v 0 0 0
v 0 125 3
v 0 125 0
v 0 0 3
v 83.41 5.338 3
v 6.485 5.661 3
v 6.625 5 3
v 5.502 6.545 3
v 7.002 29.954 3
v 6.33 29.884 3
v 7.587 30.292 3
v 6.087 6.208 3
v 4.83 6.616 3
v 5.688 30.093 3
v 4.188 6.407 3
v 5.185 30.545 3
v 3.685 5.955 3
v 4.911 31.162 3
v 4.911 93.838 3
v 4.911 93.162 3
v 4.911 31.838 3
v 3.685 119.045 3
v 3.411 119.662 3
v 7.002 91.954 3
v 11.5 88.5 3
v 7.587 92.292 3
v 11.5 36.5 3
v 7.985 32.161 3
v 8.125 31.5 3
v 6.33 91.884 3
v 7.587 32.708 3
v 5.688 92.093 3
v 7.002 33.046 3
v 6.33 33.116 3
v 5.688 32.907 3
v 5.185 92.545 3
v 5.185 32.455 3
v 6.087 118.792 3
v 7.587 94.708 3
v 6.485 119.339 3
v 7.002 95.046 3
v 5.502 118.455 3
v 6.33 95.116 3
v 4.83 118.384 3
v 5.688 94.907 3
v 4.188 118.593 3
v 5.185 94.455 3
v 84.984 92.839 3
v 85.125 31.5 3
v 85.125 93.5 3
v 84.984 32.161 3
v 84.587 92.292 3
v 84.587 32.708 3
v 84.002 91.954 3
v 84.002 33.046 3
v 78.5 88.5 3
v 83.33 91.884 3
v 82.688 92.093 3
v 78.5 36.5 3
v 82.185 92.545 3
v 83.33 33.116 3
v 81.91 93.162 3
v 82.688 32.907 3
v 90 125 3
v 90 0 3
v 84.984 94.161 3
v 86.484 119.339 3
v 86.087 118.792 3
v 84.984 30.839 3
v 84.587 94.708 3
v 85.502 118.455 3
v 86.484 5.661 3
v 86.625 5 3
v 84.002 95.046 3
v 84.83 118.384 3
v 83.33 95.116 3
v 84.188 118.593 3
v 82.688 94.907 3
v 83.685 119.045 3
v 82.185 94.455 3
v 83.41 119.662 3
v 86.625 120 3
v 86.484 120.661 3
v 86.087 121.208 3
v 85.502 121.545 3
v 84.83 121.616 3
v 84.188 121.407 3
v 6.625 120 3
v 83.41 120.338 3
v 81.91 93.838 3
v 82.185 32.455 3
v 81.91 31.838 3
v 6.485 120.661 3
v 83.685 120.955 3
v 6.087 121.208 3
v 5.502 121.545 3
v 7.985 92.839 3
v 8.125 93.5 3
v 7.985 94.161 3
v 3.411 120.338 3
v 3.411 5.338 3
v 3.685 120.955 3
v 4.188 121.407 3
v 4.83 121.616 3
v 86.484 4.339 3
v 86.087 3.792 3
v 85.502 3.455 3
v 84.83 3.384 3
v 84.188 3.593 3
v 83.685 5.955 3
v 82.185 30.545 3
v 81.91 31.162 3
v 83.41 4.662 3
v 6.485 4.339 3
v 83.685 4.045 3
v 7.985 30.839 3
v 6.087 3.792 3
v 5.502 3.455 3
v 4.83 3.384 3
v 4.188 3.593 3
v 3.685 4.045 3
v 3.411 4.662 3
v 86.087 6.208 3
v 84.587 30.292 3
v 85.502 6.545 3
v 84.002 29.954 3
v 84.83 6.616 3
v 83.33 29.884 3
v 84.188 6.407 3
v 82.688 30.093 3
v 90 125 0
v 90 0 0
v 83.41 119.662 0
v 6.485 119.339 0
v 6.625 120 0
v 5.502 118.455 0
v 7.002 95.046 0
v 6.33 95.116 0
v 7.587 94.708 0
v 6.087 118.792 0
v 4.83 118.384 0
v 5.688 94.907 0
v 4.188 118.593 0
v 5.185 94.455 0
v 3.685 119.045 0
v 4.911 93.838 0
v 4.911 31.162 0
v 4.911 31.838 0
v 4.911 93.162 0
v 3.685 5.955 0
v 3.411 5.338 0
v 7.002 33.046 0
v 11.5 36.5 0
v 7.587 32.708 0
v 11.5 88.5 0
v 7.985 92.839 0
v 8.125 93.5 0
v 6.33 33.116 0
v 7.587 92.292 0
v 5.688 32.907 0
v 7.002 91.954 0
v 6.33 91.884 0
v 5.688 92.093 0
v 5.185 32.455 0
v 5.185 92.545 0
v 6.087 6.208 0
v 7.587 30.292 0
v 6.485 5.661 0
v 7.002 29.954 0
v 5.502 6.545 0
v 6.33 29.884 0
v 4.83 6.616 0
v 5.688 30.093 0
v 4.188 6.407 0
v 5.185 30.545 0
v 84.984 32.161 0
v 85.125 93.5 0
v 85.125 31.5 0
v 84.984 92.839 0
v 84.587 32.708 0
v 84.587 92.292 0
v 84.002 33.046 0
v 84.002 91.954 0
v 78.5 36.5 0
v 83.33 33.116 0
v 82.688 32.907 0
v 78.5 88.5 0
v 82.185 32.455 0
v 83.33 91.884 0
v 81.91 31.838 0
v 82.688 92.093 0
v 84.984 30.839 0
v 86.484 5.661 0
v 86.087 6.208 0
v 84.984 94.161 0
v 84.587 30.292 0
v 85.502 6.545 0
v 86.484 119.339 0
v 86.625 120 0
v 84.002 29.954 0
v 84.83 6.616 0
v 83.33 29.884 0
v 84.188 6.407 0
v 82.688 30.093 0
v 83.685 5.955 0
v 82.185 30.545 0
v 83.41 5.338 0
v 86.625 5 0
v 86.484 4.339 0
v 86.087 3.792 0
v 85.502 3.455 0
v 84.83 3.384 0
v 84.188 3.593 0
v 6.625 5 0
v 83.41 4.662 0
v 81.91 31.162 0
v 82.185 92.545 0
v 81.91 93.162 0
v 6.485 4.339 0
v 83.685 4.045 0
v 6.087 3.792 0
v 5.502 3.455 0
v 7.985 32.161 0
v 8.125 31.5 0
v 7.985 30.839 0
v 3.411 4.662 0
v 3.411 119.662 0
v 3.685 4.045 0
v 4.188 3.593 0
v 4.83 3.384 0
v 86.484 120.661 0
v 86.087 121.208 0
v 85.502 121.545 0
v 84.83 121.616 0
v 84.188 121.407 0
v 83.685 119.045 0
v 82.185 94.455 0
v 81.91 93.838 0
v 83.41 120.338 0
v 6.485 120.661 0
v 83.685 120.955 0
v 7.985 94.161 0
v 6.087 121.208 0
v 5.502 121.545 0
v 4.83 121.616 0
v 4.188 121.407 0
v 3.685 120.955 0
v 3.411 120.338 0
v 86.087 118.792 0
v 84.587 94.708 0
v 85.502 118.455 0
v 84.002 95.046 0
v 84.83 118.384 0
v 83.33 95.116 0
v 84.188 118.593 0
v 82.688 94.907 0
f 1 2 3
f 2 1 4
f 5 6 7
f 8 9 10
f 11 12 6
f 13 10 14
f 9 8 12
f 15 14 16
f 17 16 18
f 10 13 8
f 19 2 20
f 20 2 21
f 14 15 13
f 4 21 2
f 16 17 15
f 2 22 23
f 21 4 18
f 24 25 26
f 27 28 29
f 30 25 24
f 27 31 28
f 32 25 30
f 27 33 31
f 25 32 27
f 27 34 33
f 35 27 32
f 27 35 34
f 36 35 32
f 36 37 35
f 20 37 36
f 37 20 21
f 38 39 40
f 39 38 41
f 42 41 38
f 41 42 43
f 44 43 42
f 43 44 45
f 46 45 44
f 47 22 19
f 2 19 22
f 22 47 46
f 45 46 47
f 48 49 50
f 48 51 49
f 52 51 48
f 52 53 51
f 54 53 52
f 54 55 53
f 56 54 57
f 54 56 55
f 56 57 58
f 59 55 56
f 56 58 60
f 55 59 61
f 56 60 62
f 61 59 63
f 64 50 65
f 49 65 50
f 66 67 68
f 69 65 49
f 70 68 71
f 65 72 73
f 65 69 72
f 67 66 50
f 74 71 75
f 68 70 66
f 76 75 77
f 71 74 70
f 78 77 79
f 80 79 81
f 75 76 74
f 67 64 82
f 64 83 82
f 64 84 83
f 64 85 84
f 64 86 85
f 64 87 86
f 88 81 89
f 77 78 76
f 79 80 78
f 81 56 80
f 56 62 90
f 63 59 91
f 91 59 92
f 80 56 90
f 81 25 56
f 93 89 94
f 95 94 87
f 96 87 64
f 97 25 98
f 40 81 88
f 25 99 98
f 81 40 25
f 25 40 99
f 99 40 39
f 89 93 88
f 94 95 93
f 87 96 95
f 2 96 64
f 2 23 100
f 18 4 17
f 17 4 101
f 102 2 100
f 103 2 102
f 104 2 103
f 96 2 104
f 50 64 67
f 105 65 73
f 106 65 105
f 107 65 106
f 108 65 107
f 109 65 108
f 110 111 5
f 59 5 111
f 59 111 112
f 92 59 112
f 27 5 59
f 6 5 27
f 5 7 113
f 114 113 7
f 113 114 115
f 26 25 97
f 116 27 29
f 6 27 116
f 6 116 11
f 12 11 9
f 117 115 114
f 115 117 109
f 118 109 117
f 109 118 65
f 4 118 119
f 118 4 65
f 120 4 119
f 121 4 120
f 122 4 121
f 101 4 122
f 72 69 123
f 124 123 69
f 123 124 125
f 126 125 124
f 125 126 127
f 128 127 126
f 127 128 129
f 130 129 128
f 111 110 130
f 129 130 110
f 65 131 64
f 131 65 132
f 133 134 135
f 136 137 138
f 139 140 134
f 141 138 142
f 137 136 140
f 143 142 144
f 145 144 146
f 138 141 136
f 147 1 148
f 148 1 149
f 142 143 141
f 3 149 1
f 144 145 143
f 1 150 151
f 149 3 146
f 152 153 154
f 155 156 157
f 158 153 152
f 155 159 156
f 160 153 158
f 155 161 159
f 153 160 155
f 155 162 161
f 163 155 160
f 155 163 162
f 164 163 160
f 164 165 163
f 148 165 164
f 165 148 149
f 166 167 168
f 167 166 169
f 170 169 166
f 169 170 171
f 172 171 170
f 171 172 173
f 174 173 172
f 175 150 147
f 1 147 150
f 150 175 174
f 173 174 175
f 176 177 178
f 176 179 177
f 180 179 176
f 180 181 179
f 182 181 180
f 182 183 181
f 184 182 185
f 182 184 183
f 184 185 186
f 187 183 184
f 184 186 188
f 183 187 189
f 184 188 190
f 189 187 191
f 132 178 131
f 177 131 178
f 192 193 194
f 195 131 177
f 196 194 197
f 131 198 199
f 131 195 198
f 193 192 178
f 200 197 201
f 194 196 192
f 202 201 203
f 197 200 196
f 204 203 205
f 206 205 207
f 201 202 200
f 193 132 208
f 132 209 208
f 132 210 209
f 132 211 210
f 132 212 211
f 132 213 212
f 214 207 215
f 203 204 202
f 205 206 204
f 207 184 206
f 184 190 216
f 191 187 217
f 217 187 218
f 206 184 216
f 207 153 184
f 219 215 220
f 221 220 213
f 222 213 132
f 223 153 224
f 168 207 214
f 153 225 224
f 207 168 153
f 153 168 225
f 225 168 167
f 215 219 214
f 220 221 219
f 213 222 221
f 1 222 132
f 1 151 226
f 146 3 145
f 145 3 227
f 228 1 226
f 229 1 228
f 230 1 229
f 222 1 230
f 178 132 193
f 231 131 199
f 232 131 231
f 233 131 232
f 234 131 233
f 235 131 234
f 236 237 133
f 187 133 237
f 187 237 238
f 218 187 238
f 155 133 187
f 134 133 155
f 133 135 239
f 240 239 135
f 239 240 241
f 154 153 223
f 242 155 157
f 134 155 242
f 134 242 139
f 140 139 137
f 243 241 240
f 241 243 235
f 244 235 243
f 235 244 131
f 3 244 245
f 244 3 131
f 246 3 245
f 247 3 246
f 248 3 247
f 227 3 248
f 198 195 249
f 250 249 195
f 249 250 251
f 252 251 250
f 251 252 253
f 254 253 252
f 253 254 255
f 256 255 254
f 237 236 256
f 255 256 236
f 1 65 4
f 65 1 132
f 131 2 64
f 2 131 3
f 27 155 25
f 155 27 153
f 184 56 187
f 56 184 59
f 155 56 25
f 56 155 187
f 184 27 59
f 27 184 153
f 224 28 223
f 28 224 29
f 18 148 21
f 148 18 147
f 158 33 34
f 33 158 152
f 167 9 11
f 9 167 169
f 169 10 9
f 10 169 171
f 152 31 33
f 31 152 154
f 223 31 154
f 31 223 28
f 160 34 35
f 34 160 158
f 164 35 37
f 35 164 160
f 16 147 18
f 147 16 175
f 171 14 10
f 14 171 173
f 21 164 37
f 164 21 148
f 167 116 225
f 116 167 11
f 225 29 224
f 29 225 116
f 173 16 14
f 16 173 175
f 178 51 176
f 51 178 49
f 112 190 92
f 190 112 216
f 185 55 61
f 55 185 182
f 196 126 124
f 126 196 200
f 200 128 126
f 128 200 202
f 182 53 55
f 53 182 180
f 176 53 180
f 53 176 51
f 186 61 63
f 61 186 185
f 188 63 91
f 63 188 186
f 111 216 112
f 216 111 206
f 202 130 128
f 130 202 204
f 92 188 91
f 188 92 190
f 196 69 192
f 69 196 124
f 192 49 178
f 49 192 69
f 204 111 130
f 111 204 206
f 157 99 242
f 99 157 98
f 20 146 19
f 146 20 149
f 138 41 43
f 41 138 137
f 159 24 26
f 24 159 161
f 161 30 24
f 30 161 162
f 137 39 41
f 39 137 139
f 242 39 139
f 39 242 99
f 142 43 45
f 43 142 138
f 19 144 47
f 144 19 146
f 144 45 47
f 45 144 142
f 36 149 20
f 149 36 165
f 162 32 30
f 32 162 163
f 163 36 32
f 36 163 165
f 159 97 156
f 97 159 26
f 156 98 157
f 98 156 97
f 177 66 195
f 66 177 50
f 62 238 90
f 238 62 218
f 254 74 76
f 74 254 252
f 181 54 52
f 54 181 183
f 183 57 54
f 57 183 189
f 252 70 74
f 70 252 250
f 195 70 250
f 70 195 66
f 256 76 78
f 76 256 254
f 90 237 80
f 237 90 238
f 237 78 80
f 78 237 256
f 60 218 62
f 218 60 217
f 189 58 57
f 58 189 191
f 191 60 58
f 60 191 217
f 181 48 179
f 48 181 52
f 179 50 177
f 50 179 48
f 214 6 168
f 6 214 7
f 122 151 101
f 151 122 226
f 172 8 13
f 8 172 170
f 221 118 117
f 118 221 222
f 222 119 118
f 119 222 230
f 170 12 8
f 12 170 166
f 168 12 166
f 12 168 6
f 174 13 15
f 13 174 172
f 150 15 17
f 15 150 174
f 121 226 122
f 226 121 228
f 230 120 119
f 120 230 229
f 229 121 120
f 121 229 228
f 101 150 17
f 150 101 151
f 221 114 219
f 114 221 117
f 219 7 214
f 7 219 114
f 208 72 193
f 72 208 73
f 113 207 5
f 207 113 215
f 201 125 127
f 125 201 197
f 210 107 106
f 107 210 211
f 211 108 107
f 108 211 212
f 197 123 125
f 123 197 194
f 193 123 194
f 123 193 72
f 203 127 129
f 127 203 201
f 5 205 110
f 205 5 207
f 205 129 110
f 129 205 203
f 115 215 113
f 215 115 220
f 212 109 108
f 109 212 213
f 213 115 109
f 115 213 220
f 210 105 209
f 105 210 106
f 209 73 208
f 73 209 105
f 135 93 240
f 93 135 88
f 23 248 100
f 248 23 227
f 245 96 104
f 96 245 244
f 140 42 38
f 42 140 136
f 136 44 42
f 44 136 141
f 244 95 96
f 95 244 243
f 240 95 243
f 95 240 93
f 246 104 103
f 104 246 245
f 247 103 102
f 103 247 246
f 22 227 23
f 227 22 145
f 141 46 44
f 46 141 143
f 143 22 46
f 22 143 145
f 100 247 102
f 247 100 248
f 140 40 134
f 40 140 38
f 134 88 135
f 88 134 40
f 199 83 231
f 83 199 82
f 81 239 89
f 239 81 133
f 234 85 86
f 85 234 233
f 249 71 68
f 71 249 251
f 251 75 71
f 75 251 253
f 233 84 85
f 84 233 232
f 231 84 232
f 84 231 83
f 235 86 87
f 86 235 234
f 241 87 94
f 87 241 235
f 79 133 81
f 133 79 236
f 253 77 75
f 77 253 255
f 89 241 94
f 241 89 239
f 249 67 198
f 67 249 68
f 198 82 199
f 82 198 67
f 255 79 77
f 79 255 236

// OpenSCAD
OuterLength = 80;
OuterWidth = 115;
InnerLength = 77;
InnerWidth = 62;
Margin = 10;
HoleDiameter = 3.25;
WallThickness = 3;
$fn = 15;

// Main surface
difference() {
    cube([OuterLength+Margin, OuterWidth+Margin, WallThickness], center=false);
    translate([Margin+(OuterLength-InnerLength)/2, Margin+(OuterWidth-InnerWidth)/2, 0])
    cube([InnerLength-Margin, InnerWidth-Margin, WallThickness], center=false);
    
    // Holes for 2.5 hard drive
    translate([(OuterLength-InnerLength)/2+Margin/2, (OuterWidth-InnerWidth)/2+Margin/2, 0])
    cylinder(h = WallThickness, d = HoleDiameter, center = false);
    
    translate([(OuterLength-InnerLength)/2+InnerLength+Margin/2, (OuterWidth-InnerWidth)/2+Margin/2, 0])
    cylinder(h = WallThickness, d = HoleDiameter, center = false);
    
    translate([(OuterLength-InnerLength)/2+Margin/2, (OuterWidth-InnerWidth)/2+InnerWidth+Margin/2, 0])
    cylinder(h = WallThickness, d = HoleDiameter, center = false);
    
    translate([(OuterLength-InnerLength)/2+InnerLength+Margin/2, (OuterWidth-InnerWidth)/2+InnerWidth+Margin/2, 0])
    cylinder(h = WallThickness, d = HoleDiameter, center = false);
    
    // Holes for 3.5 hard drive
    translate([Margin/2, Margin/2, 0])
    cylinder(h = WallThickness, d = HoleDiameter, center = false);
    translate([Margin/2+OuterLength, Margin/2, 0])
    cylinder(h = WallThickness, d = HoleDiameter, center = false);
    translate([Margin/2, Margin/2+OuterWidth, 0])
    cylinder(h = WallThickness, d = HoleDiameter, center = false);
    translate([Margin/2+OuterLength, Margin/2+OuterWidth, 0])
    cylinder(h = WallThickness, d = HoleDiameter, center = false);
}
